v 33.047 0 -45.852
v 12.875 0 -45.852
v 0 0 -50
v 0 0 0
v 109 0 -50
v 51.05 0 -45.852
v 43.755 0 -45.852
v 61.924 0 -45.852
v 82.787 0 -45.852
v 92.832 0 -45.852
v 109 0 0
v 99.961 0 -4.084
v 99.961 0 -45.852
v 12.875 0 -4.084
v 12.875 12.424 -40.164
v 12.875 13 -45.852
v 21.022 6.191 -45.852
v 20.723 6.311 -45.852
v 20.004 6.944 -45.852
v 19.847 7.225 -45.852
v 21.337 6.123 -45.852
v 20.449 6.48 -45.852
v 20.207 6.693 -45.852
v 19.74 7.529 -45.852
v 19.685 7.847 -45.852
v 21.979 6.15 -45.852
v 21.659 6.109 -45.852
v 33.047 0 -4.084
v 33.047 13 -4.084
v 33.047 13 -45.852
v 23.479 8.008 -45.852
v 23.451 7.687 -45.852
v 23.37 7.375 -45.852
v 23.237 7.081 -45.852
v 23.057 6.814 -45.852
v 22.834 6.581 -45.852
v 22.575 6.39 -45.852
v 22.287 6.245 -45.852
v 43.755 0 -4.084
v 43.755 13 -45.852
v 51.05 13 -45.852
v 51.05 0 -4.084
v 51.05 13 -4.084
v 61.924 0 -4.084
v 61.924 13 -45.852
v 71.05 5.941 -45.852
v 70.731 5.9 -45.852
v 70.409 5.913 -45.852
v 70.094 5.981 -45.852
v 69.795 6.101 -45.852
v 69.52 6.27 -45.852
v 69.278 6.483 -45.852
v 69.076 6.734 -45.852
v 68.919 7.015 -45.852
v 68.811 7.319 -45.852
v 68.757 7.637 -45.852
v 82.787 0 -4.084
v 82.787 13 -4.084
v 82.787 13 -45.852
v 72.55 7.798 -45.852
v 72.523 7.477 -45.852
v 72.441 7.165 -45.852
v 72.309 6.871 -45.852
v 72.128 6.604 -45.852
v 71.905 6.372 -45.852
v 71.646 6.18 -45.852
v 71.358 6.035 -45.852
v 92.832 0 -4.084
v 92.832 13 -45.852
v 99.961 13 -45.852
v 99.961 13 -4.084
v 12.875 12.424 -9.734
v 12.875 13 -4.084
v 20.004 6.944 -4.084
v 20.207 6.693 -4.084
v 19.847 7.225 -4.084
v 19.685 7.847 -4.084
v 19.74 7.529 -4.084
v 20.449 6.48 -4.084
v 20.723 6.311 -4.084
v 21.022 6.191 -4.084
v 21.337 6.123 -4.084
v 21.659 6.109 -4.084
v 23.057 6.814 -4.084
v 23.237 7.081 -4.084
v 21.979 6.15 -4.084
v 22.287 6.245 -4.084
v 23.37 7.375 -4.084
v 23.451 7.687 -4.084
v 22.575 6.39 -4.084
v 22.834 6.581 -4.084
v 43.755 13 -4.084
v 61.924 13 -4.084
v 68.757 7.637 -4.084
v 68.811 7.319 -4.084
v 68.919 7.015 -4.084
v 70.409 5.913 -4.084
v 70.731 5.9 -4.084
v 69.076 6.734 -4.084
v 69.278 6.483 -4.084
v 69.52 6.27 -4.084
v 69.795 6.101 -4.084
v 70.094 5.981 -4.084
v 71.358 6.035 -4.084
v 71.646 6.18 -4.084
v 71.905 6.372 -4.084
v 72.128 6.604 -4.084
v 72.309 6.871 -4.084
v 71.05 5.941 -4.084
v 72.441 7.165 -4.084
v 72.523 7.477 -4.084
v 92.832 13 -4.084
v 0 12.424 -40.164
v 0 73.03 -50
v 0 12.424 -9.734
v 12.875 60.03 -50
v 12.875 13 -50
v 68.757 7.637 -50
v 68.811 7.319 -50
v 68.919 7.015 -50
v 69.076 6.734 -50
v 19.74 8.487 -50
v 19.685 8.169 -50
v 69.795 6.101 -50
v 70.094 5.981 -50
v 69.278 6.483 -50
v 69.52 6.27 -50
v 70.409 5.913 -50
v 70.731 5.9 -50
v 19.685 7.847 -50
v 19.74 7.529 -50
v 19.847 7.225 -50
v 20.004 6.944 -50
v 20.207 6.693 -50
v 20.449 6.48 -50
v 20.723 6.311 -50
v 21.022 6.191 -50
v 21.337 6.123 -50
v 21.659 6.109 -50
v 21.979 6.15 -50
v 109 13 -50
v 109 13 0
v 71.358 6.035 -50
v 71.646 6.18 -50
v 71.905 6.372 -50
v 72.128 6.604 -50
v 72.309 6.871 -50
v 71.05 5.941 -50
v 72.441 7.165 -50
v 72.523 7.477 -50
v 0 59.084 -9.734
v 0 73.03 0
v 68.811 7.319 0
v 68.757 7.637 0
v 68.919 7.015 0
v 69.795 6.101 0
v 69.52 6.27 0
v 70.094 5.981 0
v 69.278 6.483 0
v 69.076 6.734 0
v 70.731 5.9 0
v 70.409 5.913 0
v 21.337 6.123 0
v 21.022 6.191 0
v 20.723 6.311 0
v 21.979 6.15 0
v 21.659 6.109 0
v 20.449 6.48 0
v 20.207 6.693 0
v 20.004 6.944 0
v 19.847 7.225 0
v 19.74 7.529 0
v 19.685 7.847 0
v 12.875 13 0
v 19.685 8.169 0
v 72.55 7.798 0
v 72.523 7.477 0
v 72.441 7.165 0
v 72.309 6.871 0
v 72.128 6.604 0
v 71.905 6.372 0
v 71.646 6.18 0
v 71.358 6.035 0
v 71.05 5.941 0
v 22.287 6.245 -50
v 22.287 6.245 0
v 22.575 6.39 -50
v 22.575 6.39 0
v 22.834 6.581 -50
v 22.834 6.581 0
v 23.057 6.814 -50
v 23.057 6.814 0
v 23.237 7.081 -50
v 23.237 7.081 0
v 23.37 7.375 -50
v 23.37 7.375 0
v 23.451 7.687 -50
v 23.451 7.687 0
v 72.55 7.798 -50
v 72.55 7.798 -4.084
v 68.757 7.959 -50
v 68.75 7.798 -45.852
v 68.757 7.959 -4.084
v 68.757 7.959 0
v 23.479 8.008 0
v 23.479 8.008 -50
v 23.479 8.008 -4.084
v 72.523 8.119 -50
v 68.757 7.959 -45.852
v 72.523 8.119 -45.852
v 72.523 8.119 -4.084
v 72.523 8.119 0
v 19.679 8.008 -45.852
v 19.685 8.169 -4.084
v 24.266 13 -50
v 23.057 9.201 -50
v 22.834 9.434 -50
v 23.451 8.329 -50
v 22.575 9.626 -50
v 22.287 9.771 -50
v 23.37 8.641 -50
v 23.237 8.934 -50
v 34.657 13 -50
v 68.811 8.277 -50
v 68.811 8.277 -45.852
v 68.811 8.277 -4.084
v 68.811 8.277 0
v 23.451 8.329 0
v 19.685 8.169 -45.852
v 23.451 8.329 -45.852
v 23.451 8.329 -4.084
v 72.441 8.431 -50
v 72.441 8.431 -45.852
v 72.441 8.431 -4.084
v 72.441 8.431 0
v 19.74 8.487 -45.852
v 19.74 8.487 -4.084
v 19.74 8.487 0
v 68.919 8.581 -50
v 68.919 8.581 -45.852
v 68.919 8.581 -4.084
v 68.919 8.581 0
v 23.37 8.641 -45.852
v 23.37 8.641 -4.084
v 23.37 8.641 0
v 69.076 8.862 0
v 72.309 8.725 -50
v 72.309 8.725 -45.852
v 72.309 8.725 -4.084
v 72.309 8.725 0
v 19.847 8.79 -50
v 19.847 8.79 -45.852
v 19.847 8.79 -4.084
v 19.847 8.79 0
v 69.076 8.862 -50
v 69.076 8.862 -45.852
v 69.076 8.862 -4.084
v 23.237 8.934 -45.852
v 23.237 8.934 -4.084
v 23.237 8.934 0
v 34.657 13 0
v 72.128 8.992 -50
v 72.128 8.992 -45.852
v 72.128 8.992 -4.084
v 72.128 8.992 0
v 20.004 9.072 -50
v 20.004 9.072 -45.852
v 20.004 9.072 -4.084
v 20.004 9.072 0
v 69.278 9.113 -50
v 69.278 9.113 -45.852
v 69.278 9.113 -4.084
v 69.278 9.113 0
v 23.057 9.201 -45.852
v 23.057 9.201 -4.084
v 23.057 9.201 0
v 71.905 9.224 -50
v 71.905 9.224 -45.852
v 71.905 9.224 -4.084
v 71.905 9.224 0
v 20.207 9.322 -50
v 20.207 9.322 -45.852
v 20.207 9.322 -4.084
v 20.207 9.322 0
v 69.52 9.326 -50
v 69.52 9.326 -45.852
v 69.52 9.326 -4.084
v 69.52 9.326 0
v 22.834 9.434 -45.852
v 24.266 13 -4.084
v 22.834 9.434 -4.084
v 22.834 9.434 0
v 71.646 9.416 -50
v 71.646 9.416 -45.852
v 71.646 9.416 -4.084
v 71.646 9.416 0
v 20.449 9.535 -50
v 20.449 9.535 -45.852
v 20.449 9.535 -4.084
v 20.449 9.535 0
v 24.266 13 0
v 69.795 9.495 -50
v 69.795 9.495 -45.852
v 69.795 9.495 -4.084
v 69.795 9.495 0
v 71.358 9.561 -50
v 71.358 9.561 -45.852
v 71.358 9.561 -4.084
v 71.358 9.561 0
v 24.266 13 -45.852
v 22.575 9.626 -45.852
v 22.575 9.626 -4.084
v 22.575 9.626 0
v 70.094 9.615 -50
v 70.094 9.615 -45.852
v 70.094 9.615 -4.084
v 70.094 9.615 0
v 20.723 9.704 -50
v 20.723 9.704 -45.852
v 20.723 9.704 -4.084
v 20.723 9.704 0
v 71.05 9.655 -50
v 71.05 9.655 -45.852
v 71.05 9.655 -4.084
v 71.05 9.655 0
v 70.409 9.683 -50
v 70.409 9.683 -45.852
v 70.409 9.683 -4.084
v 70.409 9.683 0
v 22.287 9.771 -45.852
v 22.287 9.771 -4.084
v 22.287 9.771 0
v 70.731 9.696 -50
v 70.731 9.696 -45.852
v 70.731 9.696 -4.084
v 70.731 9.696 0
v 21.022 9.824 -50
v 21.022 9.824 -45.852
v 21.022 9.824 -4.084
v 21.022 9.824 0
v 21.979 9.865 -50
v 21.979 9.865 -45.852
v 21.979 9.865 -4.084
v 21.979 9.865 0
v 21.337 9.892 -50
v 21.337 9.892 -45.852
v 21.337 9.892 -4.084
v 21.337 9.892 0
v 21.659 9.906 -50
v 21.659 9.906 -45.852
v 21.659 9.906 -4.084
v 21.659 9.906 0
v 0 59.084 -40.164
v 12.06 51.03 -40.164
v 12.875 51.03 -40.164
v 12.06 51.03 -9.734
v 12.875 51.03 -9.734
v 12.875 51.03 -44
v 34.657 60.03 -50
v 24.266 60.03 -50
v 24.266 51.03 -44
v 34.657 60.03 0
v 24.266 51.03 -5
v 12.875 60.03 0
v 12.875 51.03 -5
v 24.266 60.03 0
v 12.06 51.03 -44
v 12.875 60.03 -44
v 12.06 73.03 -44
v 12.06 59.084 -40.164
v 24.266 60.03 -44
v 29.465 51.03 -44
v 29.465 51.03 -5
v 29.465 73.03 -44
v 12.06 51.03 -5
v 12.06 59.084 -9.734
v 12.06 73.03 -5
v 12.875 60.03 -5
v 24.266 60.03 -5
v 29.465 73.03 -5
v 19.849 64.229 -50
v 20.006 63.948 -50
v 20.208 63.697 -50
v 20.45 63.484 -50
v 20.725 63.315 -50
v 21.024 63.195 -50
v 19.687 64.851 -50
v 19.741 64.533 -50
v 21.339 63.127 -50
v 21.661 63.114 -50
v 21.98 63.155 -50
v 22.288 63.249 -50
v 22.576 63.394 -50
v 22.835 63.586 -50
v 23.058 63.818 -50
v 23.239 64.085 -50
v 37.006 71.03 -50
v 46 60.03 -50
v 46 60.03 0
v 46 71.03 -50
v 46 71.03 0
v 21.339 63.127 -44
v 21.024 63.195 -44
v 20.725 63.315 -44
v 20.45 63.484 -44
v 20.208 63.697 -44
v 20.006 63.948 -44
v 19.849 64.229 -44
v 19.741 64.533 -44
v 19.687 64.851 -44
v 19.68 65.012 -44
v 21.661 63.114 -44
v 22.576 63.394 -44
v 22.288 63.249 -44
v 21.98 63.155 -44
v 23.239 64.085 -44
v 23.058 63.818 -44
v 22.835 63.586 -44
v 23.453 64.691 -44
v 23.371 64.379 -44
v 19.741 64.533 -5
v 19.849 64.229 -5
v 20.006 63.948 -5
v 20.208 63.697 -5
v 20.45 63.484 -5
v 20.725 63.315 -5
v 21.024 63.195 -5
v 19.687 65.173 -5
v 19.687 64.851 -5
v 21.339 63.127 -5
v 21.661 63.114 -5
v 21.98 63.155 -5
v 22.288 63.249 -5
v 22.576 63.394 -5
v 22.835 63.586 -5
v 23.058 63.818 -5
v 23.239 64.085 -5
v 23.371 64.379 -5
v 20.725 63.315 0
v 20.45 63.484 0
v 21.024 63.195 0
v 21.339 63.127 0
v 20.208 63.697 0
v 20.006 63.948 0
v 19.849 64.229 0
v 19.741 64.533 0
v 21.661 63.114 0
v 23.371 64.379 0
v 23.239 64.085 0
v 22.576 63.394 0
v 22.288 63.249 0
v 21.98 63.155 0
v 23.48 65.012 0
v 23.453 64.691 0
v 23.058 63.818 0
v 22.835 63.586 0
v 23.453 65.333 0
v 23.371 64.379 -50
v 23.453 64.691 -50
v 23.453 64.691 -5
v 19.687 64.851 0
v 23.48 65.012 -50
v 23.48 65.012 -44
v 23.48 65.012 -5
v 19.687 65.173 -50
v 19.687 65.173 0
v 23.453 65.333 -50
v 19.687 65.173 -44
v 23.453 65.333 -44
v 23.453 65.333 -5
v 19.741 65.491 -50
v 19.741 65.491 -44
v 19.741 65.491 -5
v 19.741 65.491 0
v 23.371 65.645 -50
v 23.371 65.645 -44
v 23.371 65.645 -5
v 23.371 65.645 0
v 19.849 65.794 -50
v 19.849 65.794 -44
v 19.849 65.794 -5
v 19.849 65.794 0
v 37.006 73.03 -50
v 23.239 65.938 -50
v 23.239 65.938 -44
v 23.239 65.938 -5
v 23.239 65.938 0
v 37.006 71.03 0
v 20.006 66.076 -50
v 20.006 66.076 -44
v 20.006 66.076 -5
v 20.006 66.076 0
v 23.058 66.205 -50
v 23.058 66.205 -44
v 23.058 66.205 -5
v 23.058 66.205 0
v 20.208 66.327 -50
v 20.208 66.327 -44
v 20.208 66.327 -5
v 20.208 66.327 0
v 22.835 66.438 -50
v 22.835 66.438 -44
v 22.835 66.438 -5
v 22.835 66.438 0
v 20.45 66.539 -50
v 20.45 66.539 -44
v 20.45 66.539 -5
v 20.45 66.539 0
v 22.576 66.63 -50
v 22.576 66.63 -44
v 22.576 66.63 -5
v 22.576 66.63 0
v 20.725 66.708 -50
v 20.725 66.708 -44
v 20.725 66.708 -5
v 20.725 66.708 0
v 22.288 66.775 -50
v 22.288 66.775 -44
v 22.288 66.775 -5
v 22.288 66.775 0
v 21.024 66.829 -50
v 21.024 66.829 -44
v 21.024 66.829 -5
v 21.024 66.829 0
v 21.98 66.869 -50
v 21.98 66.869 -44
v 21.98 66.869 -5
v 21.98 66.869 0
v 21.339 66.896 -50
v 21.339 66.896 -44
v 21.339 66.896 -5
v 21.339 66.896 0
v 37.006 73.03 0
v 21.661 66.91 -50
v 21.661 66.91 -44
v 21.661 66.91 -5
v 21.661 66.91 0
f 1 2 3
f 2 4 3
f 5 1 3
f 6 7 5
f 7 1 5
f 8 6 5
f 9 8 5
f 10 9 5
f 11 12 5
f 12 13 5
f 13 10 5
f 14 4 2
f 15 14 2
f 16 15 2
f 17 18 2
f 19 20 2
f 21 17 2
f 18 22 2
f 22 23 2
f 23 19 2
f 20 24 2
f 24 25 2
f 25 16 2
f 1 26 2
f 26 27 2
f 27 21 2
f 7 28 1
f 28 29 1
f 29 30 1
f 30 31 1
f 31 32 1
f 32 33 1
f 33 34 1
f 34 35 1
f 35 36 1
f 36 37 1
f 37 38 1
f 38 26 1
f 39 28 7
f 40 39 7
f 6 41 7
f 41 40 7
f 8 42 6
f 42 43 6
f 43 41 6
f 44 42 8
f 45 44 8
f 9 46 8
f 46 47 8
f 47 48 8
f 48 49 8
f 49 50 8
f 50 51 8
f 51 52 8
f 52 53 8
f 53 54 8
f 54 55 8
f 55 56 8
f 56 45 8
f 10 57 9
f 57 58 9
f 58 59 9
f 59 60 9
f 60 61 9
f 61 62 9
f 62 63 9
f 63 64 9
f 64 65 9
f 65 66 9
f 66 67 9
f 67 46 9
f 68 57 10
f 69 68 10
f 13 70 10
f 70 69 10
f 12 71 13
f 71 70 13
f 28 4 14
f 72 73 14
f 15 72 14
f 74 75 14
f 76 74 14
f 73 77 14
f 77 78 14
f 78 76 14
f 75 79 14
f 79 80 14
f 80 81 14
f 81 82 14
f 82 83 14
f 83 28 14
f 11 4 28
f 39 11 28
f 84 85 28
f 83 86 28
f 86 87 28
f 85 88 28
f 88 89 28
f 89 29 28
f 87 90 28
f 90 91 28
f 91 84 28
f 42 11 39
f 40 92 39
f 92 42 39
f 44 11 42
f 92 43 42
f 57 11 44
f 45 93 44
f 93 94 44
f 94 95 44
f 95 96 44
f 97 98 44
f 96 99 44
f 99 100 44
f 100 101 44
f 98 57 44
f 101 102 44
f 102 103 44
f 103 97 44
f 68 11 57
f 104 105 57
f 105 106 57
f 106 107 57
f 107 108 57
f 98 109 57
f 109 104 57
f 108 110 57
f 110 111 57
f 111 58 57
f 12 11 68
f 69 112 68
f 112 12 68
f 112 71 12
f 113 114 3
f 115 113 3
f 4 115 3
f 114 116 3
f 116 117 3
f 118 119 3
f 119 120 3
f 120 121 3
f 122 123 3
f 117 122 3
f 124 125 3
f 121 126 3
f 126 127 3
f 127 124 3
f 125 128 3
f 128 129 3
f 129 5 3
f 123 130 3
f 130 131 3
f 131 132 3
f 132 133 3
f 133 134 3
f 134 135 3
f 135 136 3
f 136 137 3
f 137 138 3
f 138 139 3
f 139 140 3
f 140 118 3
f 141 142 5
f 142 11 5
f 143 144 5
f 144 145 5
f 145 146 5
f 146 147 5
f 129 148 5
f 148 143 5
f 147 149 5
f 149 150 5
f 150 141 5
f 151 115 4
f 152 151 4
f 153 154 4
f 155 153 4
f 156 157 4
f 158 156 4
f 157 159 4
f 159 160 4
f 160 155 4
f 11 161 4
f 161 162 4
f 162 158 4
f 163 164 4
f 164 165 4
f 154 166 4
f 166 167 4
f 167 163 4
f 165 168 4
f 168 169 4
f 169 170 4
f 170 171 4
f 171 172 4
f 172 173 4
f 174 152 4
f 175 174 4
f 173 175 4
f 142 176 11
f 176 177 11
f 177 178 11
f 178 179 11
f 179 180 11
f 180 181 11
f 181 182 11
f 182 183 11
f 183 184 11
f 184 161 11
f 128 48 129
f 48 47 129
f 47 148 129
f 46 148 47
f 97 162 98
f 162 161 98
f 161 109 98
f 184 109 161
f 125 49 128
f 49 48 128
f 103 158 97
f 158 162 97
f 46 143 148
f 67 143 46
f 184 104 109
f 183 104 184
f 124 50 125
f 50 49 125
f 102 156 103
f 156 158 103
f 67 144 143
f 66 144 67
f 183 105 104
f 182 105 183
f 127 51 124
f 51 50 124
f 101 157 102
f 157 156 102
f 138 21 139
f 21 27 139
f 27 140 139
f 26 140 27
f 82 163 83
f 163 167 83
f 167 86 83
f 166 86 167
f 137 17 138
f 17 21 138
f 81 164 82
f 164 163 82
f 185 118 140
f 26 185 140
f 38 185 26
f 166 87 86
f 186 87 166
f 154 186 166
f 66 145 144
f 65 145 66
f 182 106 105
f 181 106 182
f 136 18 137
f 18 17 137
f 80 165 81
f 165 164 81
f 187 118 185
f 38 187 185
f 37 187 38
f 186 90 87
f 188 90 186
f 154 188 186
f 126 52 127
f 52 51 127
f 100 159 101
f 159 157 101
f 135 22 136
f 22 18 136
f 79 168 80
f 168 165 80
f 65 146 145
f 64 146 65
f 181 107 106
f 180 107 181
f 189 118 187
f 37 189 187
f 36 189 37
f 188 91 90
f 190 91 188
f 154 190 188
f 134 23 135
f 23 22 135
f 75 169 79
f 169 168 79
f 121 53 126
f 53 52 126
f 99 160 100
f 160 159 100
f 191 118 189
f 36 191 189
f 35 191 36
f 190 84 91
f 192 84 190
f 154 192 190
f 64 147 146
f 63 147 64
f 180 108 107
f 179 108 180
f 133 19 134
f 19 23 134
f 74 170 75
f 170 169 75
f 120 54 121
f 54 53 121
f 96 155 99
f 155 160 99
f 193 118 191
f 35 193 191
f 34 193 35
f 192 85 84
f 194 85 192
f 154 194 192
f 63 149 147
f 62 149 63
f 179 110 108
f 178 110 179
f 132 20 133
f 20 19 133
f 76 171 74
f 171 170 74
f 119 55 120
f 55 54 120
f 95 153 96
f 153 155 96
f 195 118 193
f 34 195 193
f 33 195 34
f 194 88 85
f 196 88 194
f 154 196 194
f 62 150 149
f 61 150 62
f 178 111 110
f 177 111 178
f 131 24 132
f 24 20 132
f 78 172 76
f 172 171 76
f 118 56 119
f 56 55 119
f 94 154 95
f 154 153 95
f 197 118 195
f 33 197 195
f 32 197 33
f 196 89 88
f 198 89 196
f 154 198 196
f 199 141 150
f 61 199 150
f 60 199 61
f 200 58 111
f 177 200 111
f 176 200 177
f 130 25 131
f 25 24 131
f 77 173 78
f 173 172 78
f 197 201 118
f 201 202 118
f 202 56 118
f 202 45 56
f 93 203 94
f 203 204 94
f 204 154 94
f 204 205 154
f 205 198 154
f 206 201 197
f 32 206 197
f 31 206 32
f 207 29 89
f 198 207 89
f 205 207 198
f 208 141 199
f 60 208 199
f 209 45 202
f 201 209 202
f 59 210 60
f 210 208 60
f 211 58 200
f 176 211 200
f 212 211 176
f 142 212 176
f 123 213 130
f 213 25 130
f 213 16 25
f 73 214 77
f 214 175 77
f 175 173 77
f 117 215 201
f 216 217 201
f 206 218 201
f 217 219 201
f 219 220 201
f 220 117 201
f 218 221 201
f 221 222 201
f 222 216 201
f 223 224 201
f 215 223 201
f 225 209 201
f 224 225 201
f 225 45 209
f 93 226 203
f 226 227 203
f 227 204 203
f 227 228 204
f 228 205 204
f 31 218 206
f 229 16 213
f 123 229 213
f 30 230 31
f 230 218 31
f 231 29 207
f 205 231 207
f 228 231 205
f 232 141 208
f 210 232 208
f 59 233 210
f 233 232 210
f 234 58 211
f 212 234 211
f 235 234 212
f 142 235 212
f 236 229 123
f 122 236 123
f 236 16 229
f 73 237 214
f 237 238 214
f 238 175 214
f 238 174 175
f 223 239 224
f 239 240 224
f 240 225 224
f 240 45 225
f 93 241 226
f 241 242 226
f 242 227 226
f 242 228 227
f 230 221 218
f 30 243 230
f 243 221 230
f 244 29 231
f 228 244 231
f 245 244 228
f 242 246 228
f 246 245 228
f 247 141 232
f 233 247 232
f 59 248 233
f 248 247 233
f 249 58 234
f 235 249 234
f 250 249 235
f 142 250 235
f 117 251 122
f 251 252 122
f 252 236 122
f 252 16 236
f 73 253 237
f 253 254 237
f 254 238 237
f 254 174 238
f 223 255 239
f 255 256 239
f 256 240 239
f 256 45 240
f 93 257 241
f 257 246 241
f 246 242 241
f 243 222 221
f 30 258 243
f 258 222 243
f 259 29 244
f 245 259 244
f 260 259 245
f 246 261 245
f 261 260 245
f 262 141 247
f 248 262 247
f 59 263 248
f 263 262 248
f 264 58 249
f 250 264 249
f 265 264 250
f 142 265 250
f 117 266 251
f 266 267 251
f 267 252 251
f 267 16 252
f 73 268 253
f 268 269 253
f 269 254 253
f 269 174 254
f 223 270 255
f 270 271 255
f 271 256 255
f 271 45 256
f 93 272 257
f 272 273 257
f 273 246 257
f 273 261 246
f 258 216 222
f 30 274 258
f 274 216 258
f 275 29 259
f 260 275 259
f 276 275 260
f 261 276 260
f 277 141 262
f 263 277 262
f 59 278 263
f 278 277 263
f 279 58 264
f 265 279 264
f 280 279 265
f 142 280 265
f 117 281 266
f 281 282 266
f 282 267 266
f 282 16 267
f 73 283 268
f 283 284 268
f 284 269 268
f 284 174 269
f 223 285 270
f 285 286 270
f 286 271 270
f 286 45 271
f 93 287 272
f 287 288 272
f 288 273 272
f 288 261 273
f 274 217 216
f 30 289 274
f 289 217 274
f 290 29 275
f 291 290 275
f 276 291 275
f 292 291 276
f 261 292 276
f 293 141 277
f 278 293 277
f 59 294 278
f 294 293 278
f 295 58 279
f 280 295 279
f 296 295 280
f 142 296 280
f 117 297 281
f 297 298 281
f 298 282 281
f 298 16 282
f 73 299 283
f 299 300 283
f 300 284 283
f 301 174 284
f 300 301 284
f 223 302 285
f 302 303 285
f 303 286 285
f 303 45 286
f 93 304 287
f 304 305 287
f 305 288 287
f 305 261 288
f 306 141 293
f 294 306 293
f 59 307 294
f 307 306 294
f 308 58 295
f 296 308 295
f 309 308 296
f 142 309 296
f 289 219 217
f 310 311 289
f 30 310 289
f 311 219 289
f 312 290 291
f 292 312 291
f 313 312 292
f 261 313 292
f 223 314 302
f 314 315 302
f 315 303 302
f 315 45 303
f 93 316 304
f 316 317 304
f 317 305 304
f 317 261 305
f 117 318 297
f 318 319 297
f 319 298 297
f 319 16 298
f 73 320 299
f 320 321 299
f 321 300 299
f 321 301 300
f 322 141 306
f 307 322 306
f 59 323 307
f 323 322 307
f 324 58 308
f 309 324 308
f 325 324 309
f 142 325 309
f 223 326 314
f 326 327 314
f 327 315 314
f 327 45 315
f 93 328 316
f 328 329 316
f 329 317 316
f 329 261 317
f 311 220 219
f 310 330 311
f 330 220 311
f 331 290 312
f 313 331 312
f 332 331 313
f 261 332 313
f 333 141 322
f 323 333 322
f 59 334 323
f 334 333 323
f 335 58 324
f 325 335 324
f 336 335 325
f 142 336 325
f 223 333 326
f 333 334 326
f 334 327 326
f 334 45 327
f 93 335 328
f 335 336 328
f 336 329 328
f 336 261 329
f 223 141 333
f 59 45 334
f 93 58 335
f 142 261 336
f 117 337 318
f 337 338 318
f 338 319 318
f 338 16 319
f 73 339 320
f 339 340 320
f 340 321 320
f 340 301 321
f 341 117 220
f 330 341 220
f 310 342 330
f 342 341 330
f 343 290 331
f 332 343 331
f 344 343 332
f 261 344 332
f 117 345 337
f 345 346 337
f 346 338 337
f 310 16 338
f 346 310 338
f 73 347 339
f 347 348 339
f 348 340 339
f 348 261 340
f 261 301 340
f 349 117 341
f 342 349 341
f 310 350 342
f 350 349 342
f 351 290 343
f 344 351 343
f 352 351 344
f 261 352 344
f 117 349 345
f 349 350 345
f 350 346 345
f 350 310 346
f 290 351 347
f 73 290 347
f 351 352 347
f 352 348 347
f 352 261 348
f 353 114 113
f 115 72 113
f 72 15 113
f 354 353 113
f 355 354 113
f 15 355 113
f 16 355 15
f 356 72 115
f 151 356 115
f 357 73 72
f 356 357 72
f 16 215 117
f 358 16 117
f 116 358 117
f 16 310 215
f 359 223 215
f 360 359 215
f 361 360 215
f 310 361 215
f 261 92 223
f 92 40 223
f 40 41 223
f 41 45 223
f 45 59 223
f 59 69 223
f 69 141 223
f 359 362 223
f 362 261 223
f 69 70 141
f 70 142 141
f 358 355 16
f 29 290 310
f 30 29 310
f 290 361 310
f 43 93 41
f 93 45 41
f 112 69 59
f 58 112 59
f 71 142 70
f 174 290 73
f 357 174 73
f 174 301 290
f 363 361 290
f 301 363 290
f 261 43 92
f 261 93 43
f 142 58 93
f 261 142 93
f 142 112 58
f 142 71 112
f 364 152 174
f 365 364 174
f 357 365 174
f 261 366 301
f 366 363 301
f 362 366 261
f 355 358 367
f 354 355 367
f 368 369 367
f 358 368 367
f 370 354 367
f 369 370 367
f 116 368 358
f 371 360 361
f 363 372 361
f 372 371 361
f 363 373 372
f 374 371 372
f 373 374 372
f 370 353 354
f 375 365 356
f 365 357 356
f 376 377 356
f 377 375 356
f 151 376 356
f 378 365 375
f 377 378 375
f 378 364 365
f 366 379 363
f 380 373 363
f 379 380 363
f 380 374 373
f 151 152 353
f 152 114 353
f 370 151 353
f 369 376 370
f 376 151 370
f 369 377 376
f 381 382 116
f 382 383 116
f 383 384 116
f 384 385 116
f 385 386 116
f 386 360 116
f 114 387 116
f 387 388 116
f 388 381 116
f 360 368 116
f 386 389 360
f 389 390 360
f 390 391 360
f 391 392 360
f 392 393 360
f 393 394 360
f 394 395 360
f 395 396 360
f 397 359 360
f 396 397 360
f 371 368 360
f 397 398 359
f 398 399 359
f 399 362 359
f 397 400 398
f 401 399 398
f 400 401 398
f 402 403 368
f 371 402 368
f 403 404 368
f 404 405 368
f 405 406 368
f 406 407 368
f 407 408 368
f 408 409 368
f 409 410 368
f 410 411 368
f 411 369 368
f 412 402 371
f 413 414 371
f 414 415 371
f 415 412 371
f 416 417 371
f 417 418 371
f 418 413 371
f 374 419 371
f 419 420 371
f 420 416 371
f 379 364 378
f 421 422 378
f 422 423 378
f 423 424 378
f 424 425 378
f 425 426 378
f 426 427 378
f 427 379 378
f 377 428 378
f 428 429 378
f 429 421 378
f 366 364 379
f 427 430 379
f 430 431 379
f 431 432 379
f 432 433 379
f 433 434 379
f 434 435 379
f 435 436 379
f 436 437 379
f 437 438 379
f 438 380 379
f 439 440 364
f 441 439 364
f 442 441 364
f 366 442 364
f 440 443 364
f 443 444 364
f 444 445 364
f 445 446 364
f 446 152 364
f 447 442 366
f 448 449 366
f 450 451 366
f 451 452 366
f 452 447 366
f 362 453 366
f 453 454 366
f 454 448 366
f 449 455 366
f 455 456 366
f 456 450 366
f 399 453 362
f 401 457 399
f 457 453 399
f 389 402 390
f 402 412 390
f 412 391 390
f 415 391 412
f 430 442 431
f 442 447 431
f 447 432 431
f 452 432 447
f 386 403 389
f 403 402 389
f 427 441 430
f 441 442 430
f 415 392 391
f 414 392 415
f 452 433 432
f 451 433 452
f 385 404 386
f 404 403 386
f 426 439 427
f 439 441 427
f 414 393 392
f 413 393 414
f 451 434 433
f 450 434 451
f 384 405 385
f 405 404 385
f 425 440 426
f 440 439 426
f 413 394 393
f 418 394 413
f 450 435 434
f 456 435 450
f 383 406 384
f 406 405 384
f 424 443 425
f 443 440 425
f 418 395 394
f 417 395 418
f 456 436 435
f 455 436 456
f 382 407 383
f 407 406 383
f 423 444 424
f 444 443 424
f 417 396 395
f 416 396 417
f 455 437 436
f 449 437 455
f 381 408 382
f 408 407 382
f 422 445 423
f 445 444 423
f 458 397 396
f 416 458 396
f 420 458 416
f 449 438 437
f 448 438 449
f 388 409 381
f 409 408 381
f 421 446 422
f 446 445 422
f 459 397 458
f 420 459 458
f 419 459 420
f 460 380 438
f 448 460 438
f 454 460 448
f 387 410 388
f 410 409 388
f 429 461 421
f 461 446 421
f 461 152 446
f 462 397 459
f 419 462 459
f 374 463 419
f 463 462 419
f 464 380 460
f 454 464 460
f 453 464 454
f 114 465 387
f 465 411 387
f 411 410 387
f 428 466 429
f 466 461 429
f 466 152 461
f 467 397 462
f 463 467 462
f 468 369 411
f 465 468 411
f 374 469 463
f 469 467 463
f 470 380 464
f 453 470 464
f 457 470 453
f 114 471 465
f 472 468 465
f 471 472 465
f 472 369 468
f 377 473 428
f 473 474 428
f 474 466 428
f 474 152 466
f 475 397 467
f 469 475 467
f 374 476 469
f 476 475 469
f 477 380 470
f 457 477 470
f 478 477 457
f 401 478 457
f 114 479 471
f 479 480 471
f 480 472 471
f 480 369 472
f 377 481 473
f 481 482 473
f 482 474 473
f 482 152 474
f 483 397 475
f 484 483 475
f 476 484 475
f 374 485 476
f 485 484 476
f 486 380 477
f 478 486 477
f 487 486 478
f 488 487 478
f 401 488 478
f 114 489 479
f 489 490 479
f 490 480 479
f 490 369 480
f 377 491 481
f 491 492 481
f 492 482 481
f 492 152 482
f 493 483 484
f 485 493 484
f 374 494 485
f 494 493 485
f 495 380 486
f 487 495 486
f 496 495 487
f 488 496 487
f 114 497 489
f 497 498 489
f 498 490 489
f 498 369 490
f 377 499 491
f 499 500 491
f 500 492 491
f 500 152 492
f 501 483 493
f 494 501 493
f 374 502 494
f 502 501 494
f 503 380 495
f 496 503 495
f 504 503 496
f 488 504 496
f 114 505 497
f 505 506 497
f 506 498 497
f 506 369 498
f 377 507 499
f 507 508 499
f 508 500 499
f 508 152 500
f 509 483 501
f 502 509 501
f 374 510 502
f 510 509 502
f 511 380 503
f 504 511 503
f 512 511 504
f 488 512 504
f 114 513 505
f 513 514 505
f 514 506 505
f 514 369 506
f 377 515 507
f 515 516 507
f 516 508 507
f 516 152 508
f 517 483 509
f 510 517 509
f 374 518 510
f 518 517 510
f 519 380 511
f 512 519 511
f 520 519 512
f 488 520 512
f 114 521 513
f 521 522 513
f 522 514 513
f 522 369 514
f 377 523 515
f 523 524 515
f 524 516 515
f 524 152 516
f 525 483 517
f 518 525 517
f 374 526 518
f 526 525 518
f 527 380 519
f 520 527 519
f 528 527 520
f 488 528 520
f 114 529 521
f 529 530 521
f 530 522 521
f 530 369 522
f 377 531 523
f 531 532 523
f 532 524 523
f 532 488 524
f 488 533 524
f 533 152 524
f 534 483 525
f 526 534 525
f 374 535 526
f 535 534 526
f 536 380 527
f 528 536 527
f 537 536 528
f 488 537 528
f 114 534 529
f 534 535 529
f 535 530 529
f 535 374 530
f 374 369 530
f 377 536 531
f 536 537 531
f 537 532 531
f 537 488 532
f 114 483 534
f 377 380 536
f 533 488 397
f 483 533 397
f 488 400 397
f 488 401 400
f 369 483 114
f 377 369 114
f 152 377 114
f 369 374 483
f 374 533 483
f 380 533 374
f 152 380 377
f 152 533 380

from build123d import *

# Parameters (mm, degrees)
SKETCH1_W           = 109
SKETCH1_H           = 50
BOSS_EXTRUDE1_DEPTH = 13
SKETCH2_W           = 20.172406269
SKETCH2_H           = 41.768023424
SKETCH2_W_2         = 20.8632421
SKETCH2_W_3         = 7.295226376
SKETCH2_W_4         = 7.129425777
CUT_EXTRUDE1_DEPTH  = 16
SKETCH4_W           = 12.874624242
SKETCH4_H           = 50
SKETCH4_W_2         = 10.390561779
BOSS_EXTRUDE2_DEPTH = 47.03
SKETCH5_W           = 50
SKETCH5_H           = 13
BOSS_EXTRUDE3_DEPTH = 46
SKETCH6_W           = 8.994074375
SKETCH6_H           = 50
CUT_EXTRUDE2_DEPTH  = 2
SKETCH7_W           = 17.404486576
SKETCH7_H           = 39
CUT_EXTRUDE3_DEPTH  = 22
SKETCH8_W           = 30.430427264
SKETCH8_H           = 46.659988472
CUT_EXTRUDE4_DEPTH  = 22
SKETCH9_R           = 1.9
CUT_EXTRUDE5_DEPTH  = 60


with BuildPart() as part:
    # Sketch1 → Boss-Extrude1 (new body)
    with BuildSketch(Plane(origin=(0, 0, 0), x_dir=(1, 0, 0), z_dir=(0, 1, 0))):
        with Locations((54.5, 25)):
            Rectangle(SKETCH1_W, SKETCH1_H)
    extrude(amount=BOSS_EXTRUDE1_DEPTH)

    # Sketch2 → Cut-Extrude1 (cut)
    with BuildSketch(Plane(origin=(0, 0, 0), x_dir=(-1, 0, 0), z_dir=(0, -1, 0))):
        with Locations((-22.960827377, 24.968248552)):
            Rectangle(SKETCH2_W, SKETCH2_H)
        with Locations((-72.355589302, 24.968248552)):
            Rectangle(SKETCH2_W_2, SKETCH2_H)
        with Locations((-47.402599082, 24.968248552)):
            Rectangle(SKETCH2_W_3, SKETCH2_H)
        with Locations((-96.396676226, 24.968248552)):
            Rectangle(SKETCH2_W_4, SKETCH2_H)
    extrude(amount=-CUT_EXTRUDE1_DEPTH, mode=Mode.SUBTRACT)

    # Sketch4 → Boss-Extrude2 (add)
    with BuildSketch(Plane(origin=(0, 13, 0), x_dir=(1, 0, 0), z_dir=(0, 1, 0))):
        with Locations((6.437312121, 25)):
            Rectangle(SKETCH4_W, SKETCH4_H)
        with Locations((29.461633581, 25)):
            Rectangle(SKETCH4_W_2, SKETCH4_H)
    extrude(amount=BOSS_EXTRUDE2_DEPTH)

    # Sketch5 → Boss-Extrude3 (add)
    with BuildSketch(Plane.ZY):
        with Locations((-25, 66.53)):
            Rectangle(SKETCH5_W, SKETCH5_H)
    extrude(amount=-BOSS_EXTRUDE3_DEPTH)

    # Sketch6 → Cut-Extrude2 (cut)
    with BuildSketch(Plane(origin=(0, 73.03, 0), x_dir=(1, 0, 0), z_dir=(0, 1, 0))):
        with Locations((41.502962813, 25)):
            Rectangle(SKETCH6_W, SKETCH6_H)
    extrude(amount=-CUT_EXTRUDE2_DEPTH, mode=Mode.SUBTRACT)

    # Sketch7 → Cut-Extrude3 (cut)
    with BuildSketch(Plane(origin=(0, 73.03, 0), x_dir=(1, 0, 0), z_dir=(0, 1, 0))):
        with Locations((20.762468631, 24.5)):
            Rectangle(SKETCH7_W, SKETCH7_H)
    extrude(amount=-CUT_EXTRUDE3_DEPTH, mode=Mode.SUBTRACT)

    # Sketch8 → Cut-Extrude4 (cut)
    with BuildSketch(Plane.ZY):
        with Locations((-24.949282621, 35.754239318)):
            Rectangle(SKETCH8_W, SKETCH8_H)
    extrude(amount=-CUT_EXTRUDE4_DEPTH, mode=Mode.SUBTRACT)

    # Sketch9 → Cut-Extrude5 (cut)
    with BuildSketch(Plane.XY):
        with Locations((21.57993313, 65.011863681)):
            Circle(SKETCH9_R)
        with Locations((21.57863067, 8.007764563)):
            Circle(SKETCH9_R)
        with Locations((70.65, 7.798014497)):
            Circle(SKETCH9_R)
    extrude(amount=-CUT_EXTRUDE5_DEPTH, mode=Mode.SUBTRACT)


solid = part.part
